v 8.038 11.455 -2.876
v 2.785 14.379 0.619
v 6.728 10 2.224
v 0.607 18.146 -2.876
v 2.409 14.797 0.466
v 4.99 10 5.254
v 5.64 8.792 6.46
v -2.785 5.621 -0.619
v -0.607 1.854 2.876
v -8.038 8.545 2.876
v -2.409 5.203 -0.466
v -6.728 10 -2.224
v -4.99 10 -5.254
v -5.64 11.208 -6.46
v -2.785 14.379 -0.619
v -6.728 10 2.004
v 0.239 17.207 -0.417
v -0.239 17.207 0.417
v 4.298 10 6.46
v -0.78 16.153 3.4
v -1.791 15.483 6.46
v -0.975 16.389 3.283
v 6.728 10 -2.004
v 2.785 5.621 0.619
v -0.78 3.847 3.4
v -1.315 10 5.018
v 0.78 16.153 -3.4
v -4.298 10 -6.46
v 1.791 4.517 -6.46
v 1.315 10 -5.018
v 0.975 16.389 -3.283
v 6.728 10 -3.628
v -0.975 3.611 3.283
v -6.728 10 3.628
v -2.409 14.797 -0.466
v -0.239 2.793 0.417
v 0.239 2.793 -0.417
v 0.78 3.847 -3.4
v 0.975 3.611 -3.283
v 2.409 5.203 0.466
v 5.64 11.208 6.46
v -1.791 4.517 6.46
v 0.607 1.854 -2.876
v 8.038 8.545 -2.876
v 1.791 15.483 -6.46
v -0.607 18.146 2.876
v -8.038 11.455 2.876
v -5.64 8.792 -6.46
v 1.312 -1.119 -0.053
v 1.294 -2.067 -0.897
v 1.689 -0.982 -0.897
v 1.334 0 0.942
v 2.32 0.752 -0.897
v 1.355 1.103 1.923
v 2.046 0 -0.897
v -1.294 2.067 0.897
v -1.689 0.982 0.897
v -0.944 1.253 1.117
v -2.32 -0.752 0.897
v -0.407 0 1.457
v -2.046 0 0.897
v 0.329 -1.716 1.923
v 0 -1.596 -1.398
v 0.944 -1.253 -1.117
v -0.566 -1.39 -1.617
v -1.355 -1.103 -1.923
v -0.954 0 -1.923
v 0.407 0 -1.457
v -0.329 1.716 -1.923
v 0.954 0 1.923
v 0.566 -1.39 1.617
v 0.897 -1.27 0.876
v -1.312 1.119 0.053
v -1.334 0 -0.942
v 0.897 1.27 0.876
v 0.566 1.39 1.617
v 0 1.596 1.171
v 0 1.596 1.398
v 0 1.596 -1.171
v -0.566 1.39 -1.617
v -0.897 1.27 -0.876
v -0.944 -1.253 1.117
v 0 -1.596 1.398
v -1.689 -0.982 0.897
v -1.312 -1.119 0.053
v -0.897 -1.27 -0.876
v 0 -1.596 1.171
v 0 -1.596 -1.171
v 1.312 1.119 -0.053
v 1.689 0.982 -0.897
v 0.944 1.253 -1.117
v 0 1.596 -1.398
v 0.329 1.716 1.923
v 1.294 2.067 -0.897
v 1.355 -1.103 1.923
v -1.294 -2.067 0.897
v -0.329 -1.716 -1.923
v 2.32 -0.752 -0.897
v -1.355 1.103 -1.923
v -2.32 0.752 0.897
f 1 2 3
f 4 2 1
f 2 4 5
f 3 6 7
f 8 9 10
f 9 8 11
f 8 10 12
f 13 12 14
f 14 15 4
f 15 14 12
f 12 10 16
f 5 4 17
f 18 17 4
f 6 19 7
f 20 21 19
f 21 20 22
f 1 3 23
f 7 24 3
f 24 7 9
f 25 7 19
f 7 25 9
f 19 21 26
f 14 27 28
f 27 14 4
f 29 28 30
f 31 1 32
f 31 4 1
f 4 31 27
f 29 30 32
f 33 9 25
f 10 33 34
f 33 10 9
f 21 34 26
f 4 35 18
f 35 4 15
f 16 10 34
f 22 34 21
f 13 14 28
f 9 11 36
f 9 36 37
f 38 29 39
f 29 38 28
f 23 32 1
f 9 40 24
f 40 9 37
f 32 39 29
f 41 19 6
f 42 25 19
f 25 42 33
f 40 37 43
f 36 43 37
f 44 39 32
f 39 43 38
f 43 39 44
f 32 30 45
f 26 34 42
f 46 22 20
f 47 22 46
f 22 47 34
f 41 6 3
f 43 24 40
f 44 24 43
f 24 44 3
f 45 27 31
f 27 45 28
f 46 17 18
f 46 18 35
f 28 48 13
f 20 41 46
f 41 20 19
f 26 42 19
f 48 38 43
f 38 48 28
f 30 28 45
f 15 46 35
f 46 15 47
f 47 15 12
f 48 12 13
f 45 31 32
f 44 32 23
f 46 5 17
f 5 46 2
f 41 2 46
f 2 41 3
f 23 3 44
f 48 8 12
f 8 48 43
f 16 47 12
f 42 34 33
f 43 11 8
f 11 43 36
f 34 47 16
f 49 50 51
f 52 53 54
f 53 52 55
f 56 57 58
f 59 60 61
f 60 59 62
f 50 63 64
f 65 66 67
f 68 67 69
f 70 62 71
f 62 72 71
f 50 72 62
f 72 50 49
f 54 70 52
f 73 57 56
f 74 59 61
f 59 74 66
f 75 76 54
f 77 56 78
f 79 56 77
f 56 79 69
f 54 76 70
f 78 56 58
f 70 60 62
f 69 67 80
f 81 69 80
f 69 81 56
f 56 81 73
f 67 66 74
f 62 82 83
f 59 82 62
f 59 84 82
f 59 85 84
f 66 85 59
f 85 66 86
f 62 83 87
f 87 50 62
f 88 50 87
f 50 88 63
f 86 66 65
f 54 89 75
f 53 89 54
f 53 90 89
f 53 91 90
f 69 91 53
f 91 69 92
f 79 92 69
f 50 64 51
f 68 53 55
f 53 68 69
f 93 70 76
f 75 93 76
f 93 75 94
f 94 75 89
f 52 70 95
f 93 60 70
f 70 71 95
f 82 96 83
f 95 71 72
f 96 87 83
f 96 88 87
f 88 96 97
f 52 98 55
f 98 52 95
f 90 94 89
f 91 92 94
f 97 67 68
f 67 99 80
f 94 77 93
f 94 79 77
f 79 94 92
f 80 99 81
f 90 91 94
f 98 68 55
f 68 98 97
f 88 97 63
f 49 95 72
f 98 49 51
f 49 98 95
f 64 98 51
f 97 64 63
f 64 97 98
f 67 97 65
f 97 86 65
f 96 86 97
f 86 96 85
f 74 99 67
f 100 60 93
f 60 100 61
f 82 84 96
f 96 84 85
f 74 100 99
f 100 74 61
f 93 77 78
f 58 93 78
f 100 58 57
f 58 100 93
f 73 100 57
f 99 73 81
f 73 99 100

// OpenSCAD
smCube = 3;
smCubeColor = [0.980, 0, 0.760];
smCube2 = smCube;
smCubeColor2 = [0.682, 0, 0.941];

rotationSm = 70;

lgCube = 10;
lgCubeColor = [0.258, 0.850, 0.956];
lgCube2 = lgCube;
lgCubeColor2 = [0, 0.870, 0.941];

rotationlg = 138;

color(smCubeColor)rotate([rotationSm,0,rotationSm])cube(smCube,center = true);
color(smCubeColor2) rotate([-(rotationSm),0,-(rotationSm)])cube(smCube2,center = true);

translate([0,lgCube,0]){rotate([(rotationlg)/2,0,rotationlg])color(lgCubeColor)
 cube(lgCube, center = true);
 rotate([-(rotationlg)/2,0,-(rotationlg)])color(lgCubeColor2)cube(lgCube2, center = true);}
